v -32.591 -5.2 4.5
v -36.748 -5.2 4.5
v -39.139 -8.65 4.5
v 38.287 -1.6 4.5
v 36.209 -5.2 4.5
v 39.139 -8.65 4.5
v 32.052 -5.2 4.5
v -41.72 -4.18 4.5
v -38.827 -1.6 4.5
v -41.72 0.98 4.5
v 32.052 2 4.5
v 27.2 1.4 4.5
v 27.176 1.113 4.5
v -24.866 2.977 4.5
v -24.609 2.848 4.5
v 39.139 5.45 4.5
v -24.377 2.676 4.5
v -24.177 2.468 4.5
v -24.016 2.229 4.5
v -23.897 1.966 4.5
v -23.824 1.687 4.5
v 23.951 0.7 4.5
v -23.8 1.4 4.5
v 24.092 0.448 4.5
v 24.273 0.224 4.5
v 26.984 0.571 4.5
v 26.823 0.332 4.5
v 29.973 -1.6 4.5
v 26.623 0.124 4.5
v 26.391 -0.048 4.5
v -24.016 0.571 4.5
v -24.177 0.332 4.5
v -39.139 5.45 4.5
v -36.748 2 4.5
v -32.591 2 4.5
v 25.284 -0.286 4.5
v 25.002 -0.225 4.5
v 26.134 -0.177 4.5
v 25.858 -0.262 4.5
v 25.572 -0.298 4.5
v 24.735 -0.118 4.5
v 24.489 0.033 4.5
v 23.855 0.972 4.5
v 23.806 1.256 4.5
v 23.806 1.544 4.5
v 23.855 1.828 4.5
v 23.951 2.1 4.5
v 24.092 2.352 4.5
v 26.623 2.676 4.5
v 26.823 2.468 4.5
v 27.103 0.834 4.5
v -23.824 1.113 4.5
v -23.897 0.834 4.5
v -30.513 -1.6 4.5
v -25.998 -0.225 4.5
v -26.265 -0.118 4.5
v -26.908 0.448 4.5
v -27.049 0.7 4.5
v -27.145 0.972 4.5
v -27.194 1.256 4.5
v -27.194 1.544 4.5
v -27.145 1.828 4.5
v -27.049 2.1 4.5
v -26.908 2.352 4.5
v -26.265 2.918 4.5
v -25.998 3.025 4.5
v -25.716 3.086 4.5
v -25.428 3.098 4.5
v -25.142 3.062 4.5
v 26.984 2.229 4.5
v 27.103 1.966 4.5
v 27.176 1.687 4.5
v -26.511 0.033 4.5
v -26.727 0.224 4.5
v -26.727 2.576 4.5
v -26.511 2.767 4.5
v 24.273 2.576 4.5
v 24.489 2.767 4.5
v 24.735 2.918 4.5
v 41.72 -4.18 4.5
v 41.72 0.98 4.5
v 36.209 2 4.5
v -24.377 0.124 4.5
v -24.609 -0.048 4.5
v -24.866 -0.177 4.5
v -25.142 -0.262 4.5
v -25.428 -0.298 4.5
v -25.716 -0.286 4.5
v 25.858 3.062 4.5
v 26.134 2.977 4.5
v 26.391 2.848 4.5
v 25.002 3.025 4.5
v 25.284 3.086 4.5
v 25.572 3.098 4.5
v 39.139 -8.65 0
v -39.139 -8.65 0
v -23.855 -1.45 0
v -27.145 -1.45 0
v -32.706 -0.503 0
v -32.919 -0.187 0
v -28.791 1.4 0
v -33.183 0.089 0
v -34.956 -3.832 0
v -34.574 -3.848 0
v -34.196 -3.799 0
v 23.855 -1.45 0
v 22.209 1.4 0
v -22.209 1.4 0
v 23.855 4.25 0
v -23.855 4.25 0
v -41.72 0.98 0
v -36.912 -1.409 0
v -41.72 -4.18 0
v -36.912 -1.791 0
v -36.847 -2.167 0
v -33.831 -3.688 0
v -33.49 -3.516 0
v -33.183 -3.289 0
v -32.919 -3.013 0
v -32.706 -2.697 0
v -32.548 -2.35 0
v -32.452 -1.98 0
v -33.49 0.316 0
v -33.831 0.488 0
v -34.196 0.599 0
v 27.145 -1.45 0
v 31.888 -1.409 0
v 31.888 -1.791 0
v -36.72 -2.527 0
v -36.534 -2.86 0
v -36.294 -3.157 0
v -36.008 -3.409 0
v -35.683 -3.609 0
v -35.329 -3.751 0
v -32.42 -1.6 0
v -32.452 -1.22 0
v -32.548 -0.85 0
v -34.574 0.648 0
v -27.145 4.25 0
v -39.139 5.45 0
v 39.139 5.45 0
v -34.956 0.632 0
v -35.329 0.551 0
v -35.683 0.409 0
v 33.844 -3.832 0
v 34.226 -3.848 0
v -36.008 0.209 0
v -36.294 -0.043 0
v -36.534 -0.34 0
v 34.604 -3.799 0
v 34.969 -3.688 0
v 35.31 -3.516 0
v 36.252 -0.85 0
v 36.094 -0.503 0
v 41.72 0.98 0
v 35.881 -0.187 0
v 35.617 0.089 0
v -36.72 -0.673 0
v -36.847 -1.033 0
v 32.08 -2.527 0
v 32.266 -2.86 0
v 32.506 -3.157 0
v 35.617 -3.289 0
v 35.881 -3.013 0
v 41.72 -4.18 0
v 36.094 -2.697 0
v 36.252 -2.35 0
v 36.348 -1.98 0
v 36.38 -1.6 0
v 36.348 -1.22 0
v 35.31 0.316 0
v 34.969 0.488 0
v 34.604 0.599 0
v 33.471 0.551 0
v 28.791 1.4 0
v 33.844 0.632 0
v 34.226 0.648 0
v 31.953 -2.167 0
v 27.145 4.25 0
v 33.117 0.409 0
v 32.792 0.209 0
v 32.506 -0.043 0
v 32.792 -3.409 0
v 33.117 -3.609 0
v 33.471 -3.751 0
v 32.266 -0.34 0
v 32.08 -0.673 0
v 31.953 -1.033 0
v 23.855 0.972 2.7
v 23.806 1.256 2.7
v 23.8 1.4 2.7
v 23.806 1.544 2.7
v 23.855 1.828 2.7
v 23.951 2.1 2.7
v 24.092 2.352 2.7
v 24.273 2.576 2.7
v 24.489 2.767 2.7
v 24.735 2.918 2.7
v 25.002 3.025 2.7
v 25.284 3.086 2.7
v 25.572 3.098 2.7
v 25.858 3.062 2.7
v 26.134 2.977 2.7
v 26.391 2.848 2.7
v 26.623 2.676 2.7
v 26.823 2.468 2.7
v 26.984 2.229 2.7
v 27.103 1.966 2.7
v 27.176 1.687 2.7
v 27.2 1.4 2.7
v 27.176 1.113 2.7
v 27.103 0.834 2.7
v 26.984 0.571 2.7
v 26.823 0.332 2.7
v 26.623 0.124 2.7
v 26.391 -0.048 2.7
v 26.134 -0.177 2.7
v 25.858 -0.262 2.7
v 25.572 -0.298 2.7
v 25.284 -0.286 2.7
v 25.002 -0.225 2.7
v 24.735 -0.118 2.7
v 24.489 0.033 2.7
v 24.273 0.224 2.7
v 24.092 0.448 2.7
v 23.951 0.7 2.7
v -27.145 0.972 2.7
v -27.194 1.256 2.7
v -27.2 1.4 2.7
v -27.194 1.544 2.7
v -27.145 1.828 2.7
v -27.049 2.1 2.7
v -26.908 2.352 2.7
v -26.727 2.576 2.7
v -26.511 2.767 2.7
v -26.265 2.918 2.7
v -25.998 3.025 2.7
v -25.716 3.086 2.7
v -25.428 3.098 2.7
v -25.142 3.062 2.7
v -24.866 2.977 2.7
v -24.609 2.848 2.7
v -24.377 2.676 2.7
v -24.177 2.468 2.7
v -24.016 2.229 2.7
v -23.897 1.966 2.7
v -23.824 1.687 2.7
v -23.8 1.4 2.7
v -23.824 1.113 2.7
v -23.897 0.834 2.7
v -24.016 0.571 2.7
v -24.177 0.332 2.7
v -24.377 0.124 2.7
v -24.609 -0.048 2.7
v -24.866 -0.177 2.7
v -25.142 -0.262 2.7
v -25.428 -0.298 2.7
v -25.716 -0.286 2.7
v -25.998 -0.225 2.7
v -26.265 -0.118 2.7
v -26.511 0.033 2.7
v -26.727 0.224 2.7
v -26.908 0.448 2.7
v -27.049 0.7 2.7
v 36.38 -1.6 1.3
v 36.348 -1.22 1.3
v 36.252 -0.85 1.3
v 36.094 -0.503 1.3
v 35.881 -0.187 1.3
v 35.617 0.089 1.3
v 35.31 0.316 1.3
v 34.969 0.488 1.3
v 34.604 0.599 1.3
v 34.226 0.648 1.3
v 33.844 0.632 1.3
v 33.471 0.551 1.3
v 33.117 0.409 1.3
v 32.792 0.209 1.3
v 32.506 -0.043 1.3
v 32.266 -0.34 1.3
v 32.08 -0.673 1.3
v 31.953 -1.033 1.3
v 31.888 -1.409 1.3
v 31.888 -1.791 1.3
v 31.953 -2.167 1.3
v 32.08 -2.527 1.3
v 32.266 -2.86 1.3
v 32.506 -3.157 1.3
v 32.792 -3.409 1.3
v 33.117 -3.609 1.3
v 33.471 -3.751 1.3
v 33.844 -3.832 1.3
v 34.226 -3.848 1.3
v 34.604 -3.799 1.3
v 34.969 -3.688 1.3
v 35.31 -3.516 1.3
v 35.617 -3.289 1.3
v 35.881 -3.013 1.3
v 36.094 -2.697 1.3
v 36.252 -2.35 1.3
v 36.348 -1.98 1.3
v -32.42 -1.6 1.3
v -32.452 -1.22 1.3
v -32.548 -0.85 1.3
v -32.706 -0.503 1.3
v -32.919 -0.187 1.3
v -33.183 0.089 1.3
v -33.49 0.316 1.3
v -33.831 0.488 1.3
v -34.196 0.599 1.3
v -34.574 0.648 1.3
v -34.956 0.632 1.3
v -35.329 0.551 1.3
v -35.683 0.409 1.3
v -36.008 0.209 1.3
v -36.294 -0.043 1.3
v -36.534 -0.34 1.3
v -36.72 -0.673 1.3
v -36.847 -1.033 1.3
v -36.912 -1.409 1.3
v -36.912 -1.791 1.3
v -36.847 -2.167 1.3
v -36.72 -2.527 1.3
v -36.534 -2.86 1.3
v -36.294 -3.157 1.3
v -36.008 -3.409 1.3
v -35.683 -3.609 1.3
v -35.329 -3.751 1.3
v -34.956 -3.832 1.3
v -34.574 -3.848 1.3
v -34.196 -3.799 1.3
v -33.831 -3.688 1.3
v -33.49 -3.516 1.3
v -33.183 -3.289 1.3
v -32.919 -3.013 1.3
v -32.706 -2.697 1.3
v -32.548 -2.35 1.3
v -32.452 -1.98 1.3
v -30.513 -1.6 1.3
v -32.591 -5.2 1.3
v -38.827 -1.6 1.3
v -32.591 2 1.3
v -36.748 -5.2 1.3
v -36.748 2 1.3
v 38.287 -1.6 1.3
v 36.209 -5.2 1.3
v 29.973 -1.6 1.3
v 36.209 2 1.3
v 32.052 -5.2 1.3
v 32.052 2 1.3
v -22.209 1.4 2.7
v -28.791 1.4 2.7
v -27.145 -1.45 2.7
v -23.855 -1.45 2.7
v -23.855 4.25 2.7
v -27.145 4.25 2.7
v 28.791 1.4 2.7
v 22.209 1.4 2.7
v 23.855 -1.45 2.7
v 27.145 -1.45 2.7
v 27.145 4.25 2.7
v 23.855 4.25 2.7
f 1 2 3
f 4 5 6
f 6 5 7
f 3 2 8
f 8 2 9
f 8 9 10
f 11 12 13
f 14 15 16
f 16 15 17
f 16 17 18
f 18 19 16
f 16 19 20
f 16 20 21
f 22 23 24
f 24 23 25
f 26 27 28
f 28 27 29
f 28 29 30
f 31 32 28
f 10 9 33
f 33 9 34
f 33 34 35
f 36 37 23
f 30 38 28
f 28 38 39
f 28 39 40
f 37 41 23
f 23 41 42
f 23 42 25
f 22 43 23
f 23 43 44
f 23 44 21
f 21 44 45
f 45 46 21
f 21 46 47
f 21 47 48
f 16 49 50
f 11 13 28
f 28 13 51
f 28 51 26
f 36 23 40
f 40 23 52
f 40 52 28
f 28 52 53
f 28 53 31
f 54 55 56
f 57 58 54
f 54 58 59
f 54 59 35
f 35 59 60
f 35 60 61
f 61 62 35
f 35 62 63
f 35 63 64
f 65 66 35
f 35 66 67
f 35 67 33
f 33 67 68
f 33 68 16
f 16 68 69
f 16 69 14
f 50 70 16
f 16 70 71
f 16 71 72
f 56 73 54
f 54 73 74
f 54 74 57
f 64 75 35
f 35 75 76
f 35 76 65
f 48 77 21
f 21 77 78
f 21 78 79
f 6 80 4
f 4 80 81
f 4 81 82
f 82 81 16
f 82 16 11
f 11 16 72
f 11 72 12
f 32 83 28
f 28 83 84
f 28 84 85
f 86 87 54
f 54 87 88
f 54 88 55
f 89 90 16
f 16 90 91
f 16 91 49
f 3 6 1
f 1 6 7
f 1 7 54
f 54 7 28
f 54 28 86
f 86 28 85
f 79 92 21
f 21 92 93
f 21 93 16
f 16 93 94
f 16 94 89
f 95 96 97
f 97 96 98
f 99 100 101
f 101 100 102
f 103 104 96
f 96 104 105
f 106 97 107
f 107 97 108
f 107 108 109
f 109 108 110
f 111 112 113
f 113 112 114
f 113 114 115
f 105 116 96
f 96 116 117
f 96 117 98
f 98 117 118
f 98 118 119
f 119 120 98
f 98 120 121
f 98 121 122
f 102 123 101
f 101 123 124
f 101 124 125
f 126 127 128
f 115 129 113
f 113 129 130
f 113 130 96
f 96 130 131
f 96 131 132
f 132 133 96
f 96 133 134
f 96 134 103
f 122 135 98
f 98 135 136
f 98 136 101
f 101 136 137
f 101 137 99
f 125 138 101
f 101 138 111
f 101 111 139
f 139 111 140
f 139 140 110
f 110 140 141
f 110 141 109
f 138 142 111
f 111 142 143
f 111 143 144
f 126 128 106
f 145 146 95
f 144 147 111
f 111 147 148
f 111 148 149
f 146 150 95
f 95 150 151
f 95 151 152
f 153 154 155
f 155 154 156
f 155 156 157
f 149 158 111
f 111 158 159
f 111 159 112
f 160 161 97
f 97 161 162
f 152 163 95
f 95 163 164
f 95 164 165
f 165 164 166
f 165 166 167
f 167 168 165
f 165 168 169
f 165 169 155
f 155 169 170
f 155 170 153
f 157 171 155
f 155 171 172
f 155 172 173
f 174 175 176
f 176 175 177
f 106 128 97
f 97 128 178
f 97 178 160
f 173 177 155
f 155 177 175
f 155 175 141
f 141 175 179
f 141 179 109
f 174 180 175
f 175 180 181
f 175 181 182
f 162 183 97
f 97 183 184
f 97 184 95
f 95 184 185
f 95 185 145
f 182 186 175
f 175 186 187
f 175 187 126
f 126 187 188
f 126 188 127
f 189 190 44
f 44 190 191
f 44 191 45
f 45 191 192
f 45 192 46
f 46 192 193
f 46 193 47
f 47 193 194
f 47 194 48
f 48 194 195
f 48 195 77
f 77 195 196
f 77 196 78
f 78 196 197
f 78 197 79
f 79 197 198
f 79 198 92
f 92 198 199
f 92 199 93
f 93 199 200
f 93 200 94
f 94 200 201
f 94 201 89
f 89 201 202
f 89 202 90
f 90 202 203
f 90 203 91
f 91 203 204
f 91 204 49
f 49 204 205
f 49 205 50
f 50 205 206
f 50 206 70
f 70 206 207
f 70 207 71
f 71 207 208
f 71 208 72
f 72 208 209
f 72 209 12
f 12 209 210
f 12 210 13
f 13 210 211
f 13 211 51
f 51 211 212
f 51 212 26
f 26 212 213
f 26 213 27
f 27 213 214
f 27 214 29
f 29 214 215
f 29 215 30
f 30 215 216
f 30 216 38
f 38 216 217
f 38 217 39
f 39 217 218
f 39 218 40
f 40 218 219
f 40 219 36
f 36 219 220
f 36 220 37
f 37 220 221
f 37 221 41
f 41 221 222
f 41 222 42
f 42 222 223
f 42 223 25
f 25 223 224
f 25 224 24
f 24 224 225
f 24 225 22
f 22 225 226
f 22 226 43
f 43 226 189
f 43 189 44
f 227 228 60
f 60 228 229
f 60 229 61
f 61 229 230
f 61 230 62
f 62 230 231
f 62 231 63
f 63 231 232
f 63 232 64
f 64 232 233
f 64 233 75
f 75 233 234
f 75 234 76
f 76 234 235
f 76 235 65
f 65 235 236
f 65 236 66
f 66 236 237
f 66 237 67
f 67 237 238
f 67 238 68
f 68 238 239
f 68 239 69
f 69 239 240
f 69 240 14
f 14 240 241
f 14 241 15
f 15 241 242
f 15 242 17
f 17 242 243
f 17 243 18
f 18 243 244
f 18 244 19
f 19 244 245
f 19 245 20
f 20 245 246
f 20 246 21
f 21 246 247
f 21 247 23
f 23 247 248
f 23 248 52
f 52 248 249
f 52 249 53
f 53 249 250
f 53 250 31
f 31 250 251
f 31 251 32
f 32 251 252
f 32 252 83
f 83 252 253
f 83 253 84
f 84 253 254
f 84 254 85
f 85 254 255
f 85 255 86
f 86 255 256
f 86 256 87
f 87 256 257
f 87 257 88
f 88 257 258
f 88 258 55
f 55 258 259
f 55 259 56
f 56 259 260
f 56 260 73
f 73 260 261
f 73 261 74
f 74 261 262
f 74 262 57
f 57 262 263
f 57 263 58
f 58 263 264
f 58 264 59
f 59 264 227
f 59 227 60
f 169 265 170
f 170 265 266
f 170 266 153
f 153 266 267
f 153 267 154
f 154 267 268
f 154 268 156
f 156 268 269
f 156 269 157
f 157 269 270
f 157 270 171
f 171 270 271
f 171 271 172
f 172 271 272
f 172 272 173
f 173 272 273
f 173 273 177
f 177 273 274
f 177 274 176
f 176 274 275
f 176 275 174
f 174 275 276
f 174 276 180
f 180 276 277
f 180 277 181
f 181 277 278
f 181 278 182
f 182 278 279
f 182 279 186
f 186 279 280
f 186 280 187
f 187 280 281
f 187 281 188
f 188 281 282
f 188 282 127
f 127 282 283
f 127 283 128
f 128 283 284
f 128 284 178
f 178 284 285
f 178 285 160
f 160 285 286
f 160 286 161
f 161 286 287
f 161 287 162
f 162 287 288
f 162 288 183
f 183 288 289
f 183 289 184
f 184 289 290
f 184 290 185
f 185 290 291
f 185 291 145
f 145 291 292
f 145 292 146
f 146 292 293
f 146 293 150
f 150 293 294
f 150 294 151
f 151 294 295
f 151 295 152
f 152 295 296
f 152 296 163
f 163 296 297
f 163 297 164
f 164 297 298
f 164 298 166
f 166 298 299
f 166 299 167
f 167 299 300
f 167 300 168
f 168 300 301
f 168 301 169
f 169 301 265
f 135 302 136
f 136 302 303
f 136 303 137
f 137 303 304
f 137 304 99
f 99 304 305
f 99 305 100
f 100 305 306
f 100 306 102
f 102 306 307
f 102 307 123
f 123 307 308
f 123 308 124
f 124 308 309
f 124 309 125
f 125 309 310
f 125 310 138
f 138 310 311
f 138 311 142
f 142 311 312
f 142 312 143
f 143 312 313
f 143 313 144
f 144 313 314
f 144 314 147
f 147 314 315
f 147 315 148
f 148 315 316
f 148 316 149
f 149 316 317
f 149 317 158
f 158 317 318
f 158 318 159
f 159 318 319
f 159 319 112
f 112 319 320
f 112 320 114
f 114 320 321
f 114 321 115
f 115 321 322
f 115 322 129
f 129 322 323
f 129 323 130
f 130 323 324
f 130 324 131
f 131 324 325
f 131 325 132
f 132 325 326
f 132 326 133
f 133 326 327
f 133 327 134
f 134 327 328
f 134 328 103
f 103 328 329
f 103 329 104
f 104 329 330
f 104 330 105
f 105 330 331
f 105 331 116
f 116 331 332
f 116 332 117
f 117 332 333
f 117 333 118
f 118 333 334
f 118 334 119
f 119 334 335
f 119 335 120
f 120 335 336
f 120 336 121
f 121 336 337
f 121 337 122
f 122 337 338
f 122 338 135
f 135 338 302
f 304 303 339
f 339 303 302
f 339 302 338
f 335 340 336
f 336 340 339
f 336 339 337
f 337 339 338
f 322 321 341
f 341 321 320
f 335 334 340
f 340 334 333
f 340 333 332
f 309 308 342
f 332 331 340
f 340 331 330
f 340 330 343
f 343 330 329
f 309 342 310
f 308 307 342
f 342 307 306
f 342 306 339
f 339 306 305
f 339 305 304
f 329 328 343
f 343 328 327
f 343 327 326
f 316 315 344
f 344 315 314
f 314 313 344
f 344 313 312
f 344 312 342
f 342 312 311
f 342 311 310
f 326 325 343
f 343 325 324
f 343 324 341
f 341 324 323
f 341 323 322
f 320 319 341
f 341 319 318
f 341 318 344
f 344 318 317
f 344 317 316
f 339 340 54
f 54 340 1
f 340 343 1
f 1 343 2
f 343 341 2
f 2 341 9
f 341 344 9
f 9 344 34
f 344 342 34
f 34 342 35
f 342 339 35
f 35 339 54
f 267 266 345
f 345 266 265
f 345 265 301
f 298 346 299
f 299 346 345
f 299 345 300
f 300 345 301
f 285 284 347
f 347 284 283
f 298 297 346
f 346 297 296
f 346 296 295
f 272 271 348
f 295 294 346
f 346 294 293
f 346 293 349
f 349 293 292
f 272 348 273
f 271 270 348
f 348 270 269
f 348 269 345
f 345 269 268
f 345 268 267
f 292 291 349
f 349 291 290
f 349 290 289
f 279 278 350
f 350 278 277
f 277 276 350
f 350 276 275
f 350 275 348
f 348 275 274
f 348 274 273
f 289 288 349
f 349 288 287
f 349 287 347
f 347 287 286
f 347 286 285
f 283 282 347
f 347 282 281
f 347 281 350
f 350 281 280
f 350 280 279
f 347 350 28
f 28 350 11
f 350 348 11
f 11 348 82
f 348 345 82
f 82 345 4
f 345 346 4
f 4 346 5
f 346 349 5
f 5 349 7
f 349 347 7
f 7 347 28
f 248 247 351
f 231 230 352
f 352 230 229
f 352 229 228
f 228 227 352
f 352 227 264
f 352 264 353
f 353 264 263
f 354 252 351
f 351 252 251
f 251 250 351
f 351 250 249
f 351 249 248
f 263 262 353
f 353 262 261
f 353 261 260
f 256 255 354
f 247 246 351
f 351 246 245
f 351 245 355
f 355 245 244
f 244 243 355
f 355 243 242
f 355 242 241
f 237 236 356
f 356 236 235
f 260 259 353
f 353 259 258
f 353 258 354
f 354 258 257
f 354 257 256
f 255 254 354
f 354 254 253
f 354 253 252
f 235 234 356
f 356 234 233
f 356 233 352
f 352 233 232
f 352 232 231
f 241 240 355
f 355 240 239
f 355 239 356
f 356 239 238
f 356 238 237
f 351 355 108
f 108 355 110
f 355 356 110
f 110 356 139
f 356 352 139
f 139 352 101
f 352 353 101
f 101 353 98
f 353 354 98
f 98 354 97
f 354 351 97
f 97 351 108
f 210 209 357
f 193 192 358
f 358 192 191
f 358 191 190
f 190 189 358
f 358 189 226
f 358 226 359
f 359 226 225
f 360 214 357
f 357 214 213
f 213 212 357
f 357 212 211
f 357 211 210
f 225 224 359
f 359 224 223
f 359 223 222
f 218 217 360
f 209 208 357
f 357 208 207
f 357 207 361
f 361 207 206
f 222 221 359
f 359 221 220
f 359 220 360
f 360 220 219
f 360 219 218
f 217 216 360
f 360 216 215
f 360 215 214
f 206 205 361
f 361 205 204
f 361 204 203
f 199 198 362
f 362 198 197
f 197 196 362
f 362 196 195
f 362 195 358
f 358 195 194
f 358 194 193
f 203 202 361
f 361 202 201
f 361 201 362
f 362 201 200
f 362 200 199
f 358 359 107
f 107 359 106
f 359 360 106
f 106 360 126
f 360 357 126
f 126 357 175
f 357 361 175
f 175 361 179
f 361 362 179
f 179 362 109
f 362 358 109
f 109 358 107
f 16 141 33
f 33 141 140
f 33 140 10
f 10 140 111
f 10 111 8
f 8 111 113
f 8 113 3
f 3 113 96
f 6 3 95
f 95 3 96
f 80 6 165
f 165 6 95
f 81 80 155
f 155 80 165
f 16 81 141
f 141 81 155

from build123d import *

# Parameters (mm, degrees)
SKETCH1_W            = 92
SKETCH1_H            = 75
BOSS_EXTRUDE1_DEPTH  = 4.5
M4_CLEARANCE_HOLE1_D = 4.5
M3_CLEARANCE_HOLE1_D = 3.4
CUT_EXTRUDE1_DEPTH   = 3.2
CUT_EXTRUDE2_DEPTH   = 2.7
SKETCH10_W           = 92
SKETCH10_H           = 29.25
SKETCH10_H_2         = 28.3
CUT_EXTRUDE3_DEPTH   = 60.51890456
CUT_EXTRUDE4_DEPTH   = 10


with BuildPart() as part:
    # Sketch1 → Boss-Extrude1 (new body)
    with BuildSketch(Plane.XY):
        Rectangle(SKETCH1_W, SKETCH1_H)
    extrude(amount=BOSS_EXTRUDE1_DEPTH)

    # M4 Clearance Hole1 (through all)
    with Locations(Plane.XY.offset(4.5)):
        with Locations((-34.669877487, -1.6), (34.130122513, -1.6)):
            Hole(M4_CLEARANCE_HOLE1_D / 2)

    # M3 Clearance Hole1 (through all)
    with Locations(Plane.XY.offset(4.5)):
        with Locations((-25.5, 1.4), (25.5, 1.4)):
            Hole(M3_CLEARANCE_HOLE1_D / 2)

    # Sketch8 → Cut-Extrude1 (cut)
    with BuildSketch(Plane.XY.offset(4.5)):
        Polygon((-30.512955548, -1.6), (-32.591416518, 2), (-36.748338456, 2), (-38.826799425, -1.6), (-36.748338456, -5.2), (-32.591416518, -5.2), align=None)
        Polygon((29.973200575, -1.6), (32.051661544, -5.2), (36.208583482, -5.2), (38.287044452, -1.6), (36.208583482, 2), (32.051661544, 2), align=None)
    extrude(amount=-CUT_EXTRUDE1_DEPTH, mode=Mode.SUBTRACT)

    # Sketch9 → Cut-Extrude2 (cut)
    with BuildSketch(Plane(origin=(0, 0, 0), x_dir=(-1, 0, 0), z_dir=(0, 0, -1))):
        Polygon((-22.209103466, 1.4), (-23.854551733, 4.25), (-27.145448267, 4.25), (-28.790896534, 1.4), (-27.145448267, -1.45), (-23.854551733, -1.45), align=None)
        Polygon((22.209103466, 1.4), (23.854551733, -1.45), (27.145448267, -1.45), (28.790896534, 1.4), (27.145448267, 4.25), (23.854551733, 4.25), align=None)
    extrude(amount=-CUT_EXTRUDE2_DEPTH, mode=Mode.SUBTRACT)

    # Sketch10 → Cut-Extrude3 (cut, through all)
    with BuildSketch(Plane(origin=(0, 0, 0), x_dir=(-1, 0, 0), z_dir=(0, 0, -1))):
        with Locations((0, 22.875)):
            Rectangle(SKETCH10_W, SKETCH10_H)
        with Locations((0, -23.35)):
            Rectangle(SKETCH10_W, SKETCH10_H_2)
    extrude(amount=-CUT_EXTRUDE3_DEPTH, mode=Mode.SUBTRACT)

    # Sketch11 → Cut-Extrude4 (cut)
    with BuildSketch(Plane.XY.offset(4.5)):
        Polygon((-39.13939839, 5.45), (-41.719877487, 0.980479097), (-41.719877487, -4.180479097), (-39.13939839, -8.65), (0, -8.65), (0, -18.65), (-51, -18.65), (-51, 15.45), (0, 15.45), (0, 5.45), align=None)
    cut_extrude4 = extrude(amount=-CUT_EXTRUDE4_DEPTH, mode=Mode.SUBTRACT)

    # Mirror1: Cut-Extrude4 across plane
    add(cut_extrude4.mirror(Plane(origin=(0, 0, 0), x_dir=(0, 0, 1), z_dir=(1, 0, 0))), mode=Mode.SUBTRACT)


solid = part.part
